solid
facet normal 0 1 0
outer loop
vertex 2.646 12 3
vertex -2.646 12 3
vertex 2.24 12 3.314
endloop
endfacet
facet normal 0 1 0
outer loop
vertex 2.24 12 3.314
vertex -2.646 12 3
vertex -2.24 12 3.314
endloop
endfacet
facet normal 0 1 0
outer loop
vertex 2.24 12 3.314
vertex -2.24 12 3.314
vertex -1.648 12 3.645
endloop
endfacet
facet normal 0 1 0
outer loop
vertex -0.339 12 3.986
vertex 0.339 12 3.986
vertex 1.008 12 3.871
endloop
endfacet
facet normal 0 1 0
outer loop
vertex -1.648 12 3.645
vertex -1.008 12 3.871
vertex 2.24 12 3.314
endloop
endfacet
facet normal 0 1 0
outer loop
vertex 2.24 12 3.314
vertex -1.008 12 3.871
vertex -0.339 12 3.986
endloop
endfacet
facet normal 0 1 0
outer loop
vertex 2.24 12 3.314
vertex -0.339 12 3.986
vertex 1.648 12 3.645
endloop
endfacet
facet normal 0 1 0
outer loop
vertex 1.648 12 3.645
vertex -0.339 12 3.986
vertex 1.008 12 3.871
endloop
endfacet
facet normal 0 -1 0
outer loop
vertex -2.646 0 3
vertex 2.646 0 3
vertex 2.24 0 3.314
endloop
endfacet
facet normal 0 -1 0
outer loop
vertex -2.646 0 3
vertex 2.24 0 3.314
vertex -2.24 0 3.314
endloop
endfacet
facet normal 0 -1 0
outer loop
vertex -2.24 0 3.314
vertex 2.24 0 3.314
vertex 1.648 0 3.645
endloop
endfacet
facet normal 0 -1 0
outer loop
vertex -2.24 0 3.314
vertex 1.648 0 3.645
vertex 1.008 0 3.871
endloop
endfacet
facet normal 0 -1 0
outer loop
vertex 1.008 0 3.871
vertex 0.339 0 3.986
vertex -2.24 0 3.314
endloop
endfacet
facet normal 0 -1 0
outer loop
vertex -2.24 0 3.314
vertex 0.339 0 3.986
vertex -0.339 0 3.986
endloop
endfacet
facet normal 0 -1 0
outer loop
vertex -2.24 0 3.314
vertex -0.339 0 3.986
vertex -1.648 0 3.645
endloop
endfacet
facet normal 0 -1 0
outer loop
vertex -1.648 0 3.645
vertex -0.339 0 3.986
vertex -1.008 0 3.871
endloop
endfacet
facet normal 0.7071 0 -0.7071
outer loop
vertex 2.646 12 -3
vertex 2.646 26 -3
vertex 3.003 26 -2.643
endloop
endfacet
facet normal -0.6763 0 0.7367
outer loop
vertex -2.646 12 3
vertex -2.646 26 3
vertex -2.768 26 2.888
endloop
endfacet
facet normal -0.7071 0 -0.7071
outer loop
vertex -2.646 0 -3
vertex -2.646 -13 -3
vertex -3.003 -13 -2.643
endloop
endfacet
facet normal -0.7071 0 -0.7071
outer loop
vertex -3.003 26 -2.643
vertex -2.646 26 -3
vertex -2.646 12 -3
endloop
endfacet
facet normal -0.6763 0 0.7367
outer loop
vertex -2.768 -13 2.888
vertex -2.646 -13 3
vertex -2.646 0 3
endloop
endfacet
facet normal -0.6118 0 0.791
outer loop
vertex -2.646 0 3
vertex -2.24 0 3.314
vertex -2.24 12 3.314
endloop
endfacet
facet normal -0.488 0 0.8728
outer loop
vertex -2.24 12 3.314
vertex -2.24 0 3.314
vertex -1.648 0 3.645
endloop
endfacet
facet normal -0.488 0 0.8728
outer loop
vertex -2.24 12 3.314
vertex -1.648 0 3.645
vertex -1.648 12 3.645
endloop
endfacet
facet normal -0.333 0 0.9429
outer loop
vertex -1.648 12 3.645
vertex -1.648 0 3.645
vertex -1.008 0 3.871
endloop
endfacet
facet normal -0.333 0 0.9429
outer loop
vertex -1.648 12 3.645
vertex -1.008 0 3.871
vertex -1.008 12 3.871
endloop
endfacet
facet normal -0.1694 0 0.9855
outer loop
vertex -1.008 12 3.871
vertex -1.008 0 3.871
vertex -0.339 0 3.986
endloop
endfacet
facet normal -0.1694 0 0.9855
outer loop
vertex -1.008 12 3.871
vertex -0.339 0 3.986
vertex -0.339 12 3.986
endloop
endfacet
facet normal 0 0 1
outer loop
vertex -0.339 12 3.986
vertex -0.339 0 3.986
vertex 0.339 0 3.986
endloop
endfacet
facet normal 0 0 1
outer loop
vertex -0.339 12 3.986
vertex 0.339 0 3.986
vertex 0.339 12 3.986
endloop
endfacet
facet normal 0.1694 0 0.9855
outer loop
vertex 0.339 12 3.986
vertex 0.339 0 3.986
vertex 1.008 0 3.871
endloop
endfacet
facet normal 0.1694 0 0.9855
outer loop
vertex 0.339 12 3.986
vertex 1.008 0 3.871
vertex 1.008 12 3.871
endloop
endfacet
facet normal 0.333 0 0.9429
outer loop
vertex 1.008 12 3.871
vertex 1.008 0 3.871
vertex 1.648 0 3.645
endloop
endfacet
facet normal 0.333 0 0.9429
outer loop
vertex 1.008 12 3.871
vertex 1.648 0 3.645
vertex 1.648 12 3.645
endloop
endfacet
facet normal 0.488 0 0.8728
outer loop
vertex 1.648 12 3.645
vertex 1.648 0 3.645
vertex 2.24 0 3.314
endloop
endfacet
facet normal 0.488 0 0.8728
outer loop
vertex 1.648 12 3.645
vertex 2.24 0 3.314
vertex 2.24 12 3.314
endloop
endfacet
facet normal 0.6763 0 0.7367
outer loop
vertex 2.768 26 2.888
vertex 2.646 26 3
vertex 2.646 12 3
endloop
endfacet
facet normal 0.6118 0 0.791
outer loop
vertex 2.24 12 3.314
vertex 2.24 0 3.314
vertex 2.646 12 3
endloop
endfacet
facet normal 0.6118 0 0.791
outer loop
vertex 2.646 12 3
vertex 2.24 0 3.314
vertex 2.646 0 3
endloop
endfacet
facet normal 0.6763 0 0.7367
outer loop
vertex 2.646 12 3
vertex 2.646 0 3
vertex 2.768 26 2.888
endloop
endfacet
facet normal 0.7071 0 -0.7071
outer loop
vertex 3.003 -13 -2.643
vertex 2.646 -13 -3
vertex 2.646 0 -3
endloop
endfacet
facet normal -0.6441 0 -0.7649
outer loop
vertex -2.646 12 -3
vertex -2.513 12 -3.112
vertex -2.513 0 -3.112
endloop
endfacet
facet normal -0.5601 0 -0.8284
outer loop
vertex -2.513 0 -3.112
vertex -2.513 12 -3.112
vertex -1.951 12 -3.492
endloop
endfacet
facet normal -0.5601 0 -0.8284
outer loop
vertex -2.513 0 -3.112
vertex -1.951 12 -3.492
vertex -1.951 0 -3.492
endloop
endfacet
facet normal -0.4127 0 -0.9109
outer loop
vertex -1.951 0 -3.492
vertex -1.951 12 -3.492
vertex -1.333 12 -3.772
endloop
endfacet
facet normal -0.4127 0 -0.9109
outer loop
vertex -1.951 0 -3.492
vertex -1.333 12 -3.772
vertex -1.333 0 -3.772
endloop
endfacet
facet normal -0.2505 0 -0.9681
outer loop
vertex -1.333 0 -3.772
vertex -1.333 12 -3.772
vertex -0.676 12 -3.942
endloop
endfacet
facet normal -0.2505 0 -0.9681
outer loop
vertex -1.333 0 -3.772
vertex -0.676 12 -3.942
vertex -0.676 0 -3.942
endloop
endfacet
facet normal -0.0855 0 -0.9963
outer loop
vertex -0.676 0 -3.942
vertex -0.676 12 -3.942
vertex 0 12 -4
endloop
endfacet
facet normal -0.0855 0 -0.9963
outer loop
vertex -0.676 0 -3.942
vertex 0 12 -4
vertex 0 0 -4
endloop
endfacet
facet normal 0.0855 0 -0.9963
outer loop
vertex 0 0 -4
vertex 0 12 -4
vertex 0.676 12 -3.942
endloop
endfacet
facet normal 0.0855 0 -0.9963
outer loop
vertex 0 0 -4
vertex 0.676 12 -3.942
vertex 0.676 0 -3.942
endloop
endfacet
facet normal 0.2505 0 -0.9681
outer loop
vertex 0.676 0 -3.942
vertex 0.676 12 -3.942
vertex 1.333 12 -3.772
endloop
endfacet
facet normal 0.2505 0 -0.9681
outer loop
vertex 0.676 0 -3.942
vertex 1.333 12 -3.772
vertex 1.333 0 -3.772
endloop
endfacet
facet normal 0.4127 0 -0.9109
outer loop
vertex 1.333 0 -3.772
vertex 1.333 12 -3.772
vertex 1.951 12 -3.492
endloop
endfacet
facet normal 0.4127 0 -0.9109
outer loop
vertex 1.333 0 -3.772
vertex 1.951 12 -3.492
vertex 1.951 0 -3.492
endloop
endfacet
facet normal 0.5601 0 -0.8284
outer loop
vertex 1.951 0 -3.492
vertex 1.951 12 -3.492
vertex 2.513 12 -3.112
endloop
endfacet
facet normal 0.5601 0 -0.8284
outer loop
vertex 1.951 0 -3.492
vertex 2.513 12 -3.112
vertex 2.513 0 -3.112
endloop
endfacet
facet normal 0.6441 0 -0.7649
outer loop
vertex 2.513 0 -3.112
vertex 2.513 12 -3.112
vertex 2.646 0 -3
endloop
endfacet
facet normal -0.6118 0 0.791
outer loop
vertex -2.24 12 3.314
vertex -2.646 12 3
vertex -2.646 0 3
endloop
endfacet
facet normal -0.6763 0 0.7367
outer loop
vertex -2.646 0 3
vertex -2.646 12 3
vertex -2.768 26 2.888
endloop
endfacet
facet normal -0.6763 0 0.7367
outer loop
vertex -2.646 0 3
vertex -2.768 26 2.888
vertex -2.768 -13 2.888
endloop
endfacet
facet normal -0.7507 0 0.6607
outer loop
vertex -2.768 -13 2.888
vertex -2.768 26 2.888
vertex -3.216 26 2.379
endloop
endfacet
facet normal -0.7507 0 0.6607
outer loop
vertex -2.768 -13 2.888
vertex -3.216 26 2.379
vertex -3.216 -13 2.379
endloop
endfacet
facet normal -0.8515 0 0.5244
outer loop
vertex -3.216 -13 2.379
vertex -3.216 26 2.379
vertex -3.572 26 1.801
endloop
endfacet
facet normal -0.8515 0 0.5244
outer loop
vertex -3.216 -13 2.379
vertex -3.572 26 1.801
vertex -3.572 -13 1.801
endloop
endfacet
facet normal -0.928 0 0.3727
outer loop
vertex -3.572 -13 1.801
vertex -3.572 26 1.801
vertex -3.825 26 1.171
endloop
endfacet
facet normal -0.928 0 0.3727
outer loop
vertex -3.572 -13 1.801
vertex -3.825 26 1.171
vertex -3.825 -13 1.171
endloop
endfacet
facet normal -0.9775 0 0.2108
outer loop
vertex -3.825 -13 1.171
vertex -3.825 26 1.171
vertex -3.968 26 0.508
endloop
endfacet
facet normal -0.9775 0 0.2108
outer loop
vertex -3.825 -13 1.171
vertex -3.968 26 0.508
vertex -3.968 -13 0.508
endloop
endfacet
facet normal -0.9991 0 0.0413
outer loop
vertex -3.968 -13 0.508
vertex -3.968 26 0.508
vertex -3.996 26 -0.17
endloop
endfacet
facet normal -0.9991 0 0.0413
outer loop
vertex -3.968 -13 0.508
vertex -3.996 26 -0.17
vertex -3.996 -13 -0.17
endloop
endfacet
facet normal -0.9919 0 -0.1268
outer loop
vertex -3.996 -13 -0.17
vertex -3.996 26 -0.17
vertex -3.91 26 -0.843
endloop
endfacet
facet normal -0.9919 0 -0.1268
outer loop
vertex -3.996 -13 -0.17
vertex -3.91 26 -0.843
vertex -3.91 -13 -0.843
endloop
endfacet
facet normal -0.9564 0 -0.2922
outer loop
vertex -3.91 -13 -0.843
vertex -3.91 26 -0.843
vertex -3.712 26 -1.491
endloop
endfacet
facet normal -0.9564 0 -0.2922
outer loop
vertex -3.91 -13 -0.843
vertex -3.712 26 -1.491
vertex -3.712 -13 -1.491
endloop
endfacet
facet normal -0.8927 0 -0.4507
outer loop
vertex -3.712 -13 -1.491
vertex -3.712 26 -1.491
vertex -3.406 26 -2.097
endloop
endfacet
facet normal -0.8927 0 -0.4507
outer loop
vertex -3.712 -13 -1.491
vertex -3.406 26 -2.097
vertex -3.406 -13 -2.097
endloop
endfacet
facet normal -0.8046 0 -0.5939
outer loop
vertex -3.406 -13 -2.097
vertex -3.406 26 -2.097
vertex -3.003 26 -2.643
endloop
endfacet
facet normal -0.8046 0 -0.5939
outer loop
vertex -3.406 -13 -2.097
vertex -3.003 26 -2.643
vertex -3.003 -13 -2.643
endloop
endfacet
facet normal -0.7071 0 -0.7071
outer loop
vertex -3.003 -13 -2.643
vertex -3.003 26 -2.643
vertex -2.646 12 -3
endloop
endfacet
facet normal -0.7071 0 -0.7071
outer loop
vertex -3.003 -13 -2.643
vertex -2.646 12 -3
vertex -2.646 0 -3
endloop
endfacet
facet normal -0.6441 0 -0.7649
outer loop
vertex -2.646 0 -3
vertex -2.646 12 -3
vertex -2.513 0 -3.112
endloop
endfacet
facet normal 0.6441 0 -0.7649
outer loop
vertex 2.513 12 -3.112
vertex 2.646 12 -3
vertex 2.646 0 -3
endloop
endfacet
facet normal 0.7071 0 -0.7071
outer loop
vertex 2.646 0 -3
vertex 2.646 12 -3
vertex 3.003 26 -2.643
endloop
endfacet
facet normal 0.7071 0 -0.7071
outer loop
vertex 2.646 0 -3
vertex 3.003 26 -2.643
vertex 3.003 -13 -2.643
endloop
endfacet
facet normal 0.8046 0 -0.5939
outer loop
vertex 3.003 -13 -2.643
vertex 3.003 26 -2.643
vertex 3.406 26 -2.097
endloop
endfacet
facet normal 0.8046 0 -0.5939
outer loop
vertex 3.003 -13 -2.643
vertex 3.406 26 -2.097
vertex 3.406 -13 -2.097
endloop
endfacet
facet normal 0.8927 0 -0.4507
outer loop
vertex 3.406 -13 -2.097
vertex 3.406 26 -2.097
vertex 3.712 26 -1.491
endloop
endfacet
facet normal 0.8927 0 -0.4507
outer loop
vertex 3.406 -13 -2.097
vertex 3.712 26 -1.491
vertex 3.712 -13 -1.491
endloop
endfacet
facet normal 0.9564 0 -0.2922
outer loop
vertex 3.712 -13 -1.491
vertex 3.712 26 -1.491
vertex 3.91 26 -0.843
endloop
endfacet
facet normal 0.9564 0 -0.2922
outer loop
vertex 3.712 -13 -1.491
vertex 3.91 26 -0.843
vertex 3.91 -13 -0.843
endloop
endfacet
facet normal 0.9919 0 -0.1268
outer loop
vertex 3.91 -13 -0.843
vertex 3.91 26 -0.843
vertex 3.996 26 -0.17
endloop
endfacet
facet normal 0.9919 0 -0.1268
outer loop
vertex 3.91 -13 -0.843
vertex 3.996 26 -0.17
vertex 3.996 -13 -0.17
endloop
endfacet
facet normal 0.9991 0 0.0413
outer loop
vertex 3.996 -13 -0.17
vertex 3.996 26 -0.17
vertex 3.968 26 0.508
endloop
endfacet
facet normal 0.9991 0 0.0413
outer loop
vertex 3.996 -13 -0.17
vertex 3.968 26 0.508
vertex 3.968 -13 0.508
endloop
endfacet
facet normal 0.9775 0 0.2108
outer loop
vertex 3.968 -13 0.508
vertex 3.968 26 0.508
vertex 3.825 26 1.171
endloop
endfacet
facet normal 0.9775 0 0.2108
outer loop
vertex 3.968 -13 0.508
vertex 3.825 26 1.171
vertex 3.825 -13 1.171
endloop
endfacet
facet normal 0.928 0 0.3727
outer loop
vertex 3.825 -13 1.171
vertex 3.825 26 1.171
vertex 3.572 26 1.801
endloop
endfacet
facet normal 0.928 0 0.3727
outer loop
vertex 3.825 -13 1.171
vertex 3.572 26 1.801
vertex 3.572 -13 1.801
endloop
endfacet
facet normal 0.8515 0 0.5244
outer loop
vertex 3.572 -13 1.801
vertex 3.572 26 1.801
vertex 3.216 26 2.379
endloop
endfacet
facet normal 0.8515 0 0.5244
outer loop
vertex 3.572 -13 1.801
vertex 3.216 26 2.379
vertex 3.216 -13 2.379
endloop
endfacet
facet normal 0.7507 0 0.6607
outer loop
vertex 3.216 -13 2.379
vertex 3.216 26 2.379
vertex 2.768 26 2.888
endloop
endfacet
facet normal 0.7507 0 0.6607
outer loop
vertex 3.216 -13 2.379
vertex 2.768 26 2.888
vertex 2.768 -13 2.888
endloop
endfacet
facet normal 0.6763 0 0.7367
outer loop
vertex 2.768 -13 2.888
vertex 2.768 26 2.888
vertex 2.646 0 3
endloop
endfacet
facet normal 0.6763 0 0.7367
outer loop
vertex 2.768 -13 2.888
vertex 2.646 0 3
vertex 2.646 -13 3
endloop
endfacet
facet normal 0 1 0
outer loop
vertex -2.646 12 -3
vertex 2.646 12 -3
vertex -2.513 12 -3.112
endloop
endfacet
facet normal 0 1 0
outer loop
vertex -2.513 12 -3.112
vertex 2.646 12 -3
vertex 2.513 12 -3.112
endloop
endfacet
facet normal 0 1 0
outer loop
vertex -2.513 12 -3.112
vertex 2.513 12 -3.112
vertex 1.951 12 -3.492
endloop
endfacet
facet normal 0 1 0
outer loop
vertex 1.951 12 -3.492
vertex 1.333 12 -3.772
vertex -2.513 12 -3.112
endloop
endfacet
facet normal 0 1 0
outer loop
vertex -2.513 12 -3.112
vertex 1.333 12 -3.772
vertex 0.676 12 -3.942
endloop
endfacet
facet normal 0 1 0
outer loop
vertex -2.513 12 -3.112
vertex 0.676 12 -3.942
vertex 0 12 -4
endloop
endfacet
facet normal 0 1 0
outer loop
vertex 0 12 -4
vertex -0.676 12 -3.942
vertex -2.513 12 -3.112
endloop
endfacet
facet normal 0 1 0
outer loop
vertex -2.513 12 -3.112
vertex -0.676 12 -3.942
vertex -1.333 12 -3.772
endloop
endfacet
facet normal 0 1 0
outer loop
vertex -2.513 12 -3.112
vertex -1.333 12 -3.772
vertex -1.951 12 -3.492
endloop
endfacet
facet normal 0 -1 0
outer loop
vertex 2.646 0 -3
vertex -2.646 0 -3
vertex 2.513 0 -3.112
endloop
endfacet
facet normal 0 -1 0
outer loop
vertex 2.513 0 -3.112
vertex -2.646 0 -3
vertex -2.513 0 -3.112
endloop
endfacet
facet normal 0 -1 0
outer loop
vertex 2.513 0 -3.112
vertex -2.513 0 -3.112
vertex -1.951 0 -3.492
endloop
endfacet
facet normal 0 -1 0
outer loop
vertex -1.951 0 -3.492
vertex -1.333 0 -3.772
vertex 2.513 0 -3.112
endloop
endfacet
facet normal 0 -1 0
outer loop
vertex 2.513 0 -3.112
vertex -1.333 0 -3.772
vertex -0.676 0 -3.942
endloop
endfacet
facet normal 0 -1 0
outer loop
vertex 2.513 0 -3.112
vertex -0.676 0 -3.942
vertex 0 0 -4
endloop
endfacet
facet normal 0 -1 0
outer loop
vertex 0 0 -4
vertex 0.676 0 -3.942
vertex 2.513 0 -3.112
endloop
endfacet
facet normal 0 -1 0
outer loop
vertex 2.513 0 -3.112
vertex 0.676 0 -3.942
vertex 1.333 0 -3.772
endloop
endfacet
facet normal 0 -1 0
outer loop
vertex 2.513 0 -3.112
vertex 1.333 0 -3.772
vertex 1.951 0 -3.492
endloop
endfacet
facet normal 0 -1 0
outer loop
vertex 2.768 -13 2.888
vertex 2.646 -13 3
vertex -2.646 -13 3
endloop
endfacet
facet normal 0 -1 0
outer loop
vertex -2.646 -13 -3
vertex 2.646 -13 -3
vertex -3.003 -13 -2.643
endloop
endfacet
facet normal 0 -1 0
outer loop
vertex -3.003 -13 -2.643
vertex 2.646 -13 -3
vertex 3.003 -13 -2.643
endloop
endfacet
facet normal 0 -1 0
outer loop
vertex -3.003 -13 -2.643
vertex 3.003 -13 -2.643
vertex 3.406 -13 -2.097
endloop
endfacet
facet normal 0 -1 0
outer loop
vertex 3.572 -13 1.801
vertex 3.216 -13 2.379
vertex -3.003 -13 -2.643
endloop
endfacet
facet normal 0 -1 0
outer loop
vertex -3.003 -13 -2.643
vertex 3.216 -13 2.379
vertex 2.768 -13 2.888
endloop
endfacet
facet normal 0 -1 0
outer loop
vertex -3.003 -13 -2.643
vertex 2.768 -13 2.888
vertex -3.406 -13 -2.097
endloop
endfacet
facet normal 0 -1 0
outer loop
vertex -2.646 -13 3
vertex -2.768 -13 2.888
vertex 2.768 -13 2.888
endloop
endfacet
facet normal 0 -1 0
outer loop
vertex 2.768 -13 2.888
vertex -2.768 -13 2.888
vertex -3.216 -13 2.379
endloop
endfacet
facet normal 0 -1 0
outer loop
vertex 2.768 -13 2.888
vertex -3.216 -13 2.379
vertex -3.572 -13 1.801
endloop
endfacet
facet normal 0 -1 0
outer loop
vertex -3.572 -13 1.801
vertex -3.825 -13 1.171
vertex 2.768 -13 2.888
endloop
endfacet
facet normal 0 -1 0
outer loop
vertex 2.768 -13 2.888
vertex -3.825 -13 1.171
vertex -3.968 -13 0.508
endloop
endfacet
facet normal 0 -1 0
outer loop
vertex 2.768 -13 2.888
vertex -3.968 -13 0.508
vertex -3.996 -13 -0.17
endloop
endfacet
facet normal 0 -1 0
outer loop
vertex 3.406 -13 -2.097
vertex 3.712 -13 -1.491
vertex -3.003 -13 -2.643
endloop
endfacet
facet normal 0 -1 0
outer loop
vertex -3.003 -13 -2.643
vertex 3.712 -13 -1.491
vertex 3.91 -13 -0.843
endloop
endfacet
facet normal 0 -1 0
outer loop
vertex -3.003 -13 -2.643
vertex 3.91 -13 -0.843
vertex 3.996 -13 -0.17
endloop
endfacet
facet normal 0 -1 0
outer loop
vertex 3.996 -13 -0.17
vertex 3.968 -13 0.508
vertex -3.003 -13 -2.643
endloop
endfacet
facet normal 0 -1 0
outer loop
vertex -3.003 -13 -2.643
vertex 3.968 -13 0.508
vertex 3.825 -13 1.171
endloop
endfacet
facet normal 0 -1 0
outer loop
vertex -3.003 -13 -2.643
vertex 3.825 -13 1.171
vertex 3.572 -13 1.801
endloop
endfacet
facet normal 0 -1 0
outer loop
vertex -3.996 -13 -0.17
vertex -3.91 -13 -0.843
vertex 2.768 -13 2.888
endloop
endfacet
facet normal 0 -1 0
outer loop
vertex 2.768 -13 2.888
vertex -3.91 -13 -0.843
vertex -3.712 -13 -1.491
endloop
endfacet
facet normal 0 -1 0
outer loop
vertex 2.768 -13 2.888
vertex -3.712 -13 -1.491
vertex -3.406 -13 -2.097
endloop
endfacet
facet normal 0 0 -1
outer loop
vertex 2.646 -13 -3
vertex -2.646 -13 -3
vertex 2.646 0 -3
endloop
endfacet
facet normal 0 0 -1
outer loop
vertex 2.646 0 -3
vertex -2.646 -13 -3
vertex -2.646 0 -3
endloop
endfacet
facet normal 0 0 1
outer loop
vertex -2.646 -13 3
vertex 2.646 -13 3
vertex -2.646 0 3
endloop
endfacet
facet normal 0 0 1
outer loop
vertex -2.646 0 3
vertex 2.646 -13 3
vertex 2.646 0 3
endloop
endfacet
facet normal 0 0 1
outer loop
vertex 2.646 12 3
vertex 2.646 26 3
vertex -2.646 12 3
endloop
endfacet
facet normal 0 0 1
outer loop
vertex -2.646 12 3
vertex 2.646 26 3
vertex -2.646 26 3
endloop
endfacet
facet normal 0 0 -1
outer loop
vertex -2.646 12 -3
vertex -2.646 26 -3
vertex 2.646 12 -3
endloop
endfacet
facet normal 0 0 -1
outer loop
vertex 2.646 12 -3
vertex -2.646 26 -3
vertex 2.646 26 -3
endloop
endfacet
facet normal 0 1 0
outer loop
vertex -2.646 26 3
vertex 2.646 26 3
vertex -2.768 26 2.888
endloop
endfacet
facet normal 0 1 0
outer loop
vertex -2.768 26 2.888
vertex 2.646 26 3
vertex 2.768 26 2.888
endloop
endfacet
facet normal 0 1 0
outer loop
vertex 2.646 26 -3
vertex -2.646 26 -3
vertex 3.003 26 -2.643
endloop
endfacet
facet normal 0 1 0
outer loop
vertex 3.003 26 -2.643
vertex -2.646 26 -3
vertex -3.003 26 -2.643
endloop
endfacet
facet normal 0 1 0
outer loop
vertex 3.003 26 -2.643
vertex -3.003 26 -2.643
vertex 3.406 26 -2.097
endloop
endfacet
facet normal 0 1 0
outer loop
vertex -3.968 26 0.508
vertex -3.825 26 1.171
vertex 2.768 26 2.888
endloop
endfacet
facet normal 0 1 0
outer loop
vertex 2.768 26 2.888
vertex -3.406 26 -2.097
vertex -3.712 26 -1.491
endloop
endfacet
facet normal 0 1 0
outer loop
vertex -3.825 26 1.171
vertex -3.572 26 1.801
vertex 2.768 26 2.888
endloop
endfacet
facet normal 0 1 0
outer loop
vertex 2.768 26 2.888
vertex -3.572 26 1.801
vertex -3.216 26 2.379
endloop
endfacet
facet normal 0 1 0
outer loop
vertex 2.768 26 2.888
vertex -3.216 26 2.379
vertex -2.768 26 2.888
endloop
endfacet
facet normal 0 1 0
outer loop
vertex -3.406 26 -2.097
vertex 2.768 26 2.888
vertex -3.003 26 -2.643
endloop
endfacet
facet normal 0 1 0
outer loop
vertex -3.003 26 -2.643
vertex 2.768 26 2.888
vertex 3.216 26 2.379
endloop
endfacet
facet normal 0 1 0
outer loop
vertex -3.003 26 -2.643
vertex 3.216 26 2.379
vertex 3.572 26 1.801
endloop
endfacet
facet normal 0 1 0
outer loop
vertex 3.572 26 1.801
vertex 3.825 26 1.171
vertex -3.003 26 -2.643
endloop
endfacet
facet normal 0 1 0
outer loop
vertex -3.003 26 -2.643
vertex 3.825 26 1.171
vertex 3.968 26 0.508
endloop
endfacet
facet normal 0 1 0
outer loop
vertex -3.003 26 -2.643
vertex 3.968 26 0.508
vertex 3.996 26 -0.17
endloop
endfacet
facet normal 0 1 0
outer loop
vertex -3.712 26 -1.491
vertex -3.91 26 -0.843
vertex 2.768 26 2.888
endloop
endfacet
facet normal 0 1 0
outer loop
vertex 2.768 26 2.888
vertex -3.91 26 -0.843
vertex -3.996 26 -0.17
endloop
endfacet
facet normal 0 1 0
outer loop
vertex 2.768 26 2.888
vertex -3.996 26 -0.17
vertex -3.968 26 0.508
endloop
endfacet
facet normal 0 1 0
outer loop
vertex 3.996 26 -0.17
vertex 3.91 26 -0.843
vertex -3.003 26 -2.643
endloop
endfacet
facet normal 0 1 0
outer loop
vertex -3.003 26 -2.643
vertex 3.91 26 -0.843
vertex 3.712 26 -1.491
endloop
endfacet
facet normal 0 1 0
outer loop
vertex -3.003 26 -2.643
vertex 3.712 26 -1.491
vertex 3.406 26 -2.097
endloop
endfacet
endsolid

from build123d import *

# Parameters (mm, degrees)
CROQUIS1_R                   = 4
SALIENTE_EXTRUIR1_DEPTH      = 12
SALIENTE_EXTRUIR2_DEPTH      = 14
SALIENTE_EXTRUIR2_DEPTH_BACK = 25


with BuildPart() as part:
    # Croquis1 → Saliente-Extruir1 (new body)
    with BuildSketch(Plane(origin=(0, 0, 0), x_dir=(1, 0, 0), z_dir=(0, 1, 0))):
        Circle(CROQUIS1_R)
    extrude(amount=SALIENTE_EXTRUIR1_DEPTH)

    # Croquis2 → Saliente-Extruir2 (add, two sides: drawn at the far end of the back side and taken through both)
    with BuildSketch(Plane(origin=(0, 12, 0), x_dir=(1, 0, 0), z_dir=(0, 1, 0)).offset(-SALIENTE_EXTRUIR2_DEPTH_BACK)):
        with BuildLine():
            Line((-2.645751311, -3), (2.645751311, -3))
            ThreePointArc((2.645751311, -3), (4, 0), (2.645751311, 3))
            Line((2.645751311, 3), (-2.645751311, 3))
            ThreePointArc((-2.645751311, 3), (-4, 0), (-2.645751311, -3))
        make_face()
    extrude(amount=SALIENTE_EXTRUIR2_DEPTH + SALIENTE_EXTRUIR2_DEPTH_BACK)


solid = part.part
